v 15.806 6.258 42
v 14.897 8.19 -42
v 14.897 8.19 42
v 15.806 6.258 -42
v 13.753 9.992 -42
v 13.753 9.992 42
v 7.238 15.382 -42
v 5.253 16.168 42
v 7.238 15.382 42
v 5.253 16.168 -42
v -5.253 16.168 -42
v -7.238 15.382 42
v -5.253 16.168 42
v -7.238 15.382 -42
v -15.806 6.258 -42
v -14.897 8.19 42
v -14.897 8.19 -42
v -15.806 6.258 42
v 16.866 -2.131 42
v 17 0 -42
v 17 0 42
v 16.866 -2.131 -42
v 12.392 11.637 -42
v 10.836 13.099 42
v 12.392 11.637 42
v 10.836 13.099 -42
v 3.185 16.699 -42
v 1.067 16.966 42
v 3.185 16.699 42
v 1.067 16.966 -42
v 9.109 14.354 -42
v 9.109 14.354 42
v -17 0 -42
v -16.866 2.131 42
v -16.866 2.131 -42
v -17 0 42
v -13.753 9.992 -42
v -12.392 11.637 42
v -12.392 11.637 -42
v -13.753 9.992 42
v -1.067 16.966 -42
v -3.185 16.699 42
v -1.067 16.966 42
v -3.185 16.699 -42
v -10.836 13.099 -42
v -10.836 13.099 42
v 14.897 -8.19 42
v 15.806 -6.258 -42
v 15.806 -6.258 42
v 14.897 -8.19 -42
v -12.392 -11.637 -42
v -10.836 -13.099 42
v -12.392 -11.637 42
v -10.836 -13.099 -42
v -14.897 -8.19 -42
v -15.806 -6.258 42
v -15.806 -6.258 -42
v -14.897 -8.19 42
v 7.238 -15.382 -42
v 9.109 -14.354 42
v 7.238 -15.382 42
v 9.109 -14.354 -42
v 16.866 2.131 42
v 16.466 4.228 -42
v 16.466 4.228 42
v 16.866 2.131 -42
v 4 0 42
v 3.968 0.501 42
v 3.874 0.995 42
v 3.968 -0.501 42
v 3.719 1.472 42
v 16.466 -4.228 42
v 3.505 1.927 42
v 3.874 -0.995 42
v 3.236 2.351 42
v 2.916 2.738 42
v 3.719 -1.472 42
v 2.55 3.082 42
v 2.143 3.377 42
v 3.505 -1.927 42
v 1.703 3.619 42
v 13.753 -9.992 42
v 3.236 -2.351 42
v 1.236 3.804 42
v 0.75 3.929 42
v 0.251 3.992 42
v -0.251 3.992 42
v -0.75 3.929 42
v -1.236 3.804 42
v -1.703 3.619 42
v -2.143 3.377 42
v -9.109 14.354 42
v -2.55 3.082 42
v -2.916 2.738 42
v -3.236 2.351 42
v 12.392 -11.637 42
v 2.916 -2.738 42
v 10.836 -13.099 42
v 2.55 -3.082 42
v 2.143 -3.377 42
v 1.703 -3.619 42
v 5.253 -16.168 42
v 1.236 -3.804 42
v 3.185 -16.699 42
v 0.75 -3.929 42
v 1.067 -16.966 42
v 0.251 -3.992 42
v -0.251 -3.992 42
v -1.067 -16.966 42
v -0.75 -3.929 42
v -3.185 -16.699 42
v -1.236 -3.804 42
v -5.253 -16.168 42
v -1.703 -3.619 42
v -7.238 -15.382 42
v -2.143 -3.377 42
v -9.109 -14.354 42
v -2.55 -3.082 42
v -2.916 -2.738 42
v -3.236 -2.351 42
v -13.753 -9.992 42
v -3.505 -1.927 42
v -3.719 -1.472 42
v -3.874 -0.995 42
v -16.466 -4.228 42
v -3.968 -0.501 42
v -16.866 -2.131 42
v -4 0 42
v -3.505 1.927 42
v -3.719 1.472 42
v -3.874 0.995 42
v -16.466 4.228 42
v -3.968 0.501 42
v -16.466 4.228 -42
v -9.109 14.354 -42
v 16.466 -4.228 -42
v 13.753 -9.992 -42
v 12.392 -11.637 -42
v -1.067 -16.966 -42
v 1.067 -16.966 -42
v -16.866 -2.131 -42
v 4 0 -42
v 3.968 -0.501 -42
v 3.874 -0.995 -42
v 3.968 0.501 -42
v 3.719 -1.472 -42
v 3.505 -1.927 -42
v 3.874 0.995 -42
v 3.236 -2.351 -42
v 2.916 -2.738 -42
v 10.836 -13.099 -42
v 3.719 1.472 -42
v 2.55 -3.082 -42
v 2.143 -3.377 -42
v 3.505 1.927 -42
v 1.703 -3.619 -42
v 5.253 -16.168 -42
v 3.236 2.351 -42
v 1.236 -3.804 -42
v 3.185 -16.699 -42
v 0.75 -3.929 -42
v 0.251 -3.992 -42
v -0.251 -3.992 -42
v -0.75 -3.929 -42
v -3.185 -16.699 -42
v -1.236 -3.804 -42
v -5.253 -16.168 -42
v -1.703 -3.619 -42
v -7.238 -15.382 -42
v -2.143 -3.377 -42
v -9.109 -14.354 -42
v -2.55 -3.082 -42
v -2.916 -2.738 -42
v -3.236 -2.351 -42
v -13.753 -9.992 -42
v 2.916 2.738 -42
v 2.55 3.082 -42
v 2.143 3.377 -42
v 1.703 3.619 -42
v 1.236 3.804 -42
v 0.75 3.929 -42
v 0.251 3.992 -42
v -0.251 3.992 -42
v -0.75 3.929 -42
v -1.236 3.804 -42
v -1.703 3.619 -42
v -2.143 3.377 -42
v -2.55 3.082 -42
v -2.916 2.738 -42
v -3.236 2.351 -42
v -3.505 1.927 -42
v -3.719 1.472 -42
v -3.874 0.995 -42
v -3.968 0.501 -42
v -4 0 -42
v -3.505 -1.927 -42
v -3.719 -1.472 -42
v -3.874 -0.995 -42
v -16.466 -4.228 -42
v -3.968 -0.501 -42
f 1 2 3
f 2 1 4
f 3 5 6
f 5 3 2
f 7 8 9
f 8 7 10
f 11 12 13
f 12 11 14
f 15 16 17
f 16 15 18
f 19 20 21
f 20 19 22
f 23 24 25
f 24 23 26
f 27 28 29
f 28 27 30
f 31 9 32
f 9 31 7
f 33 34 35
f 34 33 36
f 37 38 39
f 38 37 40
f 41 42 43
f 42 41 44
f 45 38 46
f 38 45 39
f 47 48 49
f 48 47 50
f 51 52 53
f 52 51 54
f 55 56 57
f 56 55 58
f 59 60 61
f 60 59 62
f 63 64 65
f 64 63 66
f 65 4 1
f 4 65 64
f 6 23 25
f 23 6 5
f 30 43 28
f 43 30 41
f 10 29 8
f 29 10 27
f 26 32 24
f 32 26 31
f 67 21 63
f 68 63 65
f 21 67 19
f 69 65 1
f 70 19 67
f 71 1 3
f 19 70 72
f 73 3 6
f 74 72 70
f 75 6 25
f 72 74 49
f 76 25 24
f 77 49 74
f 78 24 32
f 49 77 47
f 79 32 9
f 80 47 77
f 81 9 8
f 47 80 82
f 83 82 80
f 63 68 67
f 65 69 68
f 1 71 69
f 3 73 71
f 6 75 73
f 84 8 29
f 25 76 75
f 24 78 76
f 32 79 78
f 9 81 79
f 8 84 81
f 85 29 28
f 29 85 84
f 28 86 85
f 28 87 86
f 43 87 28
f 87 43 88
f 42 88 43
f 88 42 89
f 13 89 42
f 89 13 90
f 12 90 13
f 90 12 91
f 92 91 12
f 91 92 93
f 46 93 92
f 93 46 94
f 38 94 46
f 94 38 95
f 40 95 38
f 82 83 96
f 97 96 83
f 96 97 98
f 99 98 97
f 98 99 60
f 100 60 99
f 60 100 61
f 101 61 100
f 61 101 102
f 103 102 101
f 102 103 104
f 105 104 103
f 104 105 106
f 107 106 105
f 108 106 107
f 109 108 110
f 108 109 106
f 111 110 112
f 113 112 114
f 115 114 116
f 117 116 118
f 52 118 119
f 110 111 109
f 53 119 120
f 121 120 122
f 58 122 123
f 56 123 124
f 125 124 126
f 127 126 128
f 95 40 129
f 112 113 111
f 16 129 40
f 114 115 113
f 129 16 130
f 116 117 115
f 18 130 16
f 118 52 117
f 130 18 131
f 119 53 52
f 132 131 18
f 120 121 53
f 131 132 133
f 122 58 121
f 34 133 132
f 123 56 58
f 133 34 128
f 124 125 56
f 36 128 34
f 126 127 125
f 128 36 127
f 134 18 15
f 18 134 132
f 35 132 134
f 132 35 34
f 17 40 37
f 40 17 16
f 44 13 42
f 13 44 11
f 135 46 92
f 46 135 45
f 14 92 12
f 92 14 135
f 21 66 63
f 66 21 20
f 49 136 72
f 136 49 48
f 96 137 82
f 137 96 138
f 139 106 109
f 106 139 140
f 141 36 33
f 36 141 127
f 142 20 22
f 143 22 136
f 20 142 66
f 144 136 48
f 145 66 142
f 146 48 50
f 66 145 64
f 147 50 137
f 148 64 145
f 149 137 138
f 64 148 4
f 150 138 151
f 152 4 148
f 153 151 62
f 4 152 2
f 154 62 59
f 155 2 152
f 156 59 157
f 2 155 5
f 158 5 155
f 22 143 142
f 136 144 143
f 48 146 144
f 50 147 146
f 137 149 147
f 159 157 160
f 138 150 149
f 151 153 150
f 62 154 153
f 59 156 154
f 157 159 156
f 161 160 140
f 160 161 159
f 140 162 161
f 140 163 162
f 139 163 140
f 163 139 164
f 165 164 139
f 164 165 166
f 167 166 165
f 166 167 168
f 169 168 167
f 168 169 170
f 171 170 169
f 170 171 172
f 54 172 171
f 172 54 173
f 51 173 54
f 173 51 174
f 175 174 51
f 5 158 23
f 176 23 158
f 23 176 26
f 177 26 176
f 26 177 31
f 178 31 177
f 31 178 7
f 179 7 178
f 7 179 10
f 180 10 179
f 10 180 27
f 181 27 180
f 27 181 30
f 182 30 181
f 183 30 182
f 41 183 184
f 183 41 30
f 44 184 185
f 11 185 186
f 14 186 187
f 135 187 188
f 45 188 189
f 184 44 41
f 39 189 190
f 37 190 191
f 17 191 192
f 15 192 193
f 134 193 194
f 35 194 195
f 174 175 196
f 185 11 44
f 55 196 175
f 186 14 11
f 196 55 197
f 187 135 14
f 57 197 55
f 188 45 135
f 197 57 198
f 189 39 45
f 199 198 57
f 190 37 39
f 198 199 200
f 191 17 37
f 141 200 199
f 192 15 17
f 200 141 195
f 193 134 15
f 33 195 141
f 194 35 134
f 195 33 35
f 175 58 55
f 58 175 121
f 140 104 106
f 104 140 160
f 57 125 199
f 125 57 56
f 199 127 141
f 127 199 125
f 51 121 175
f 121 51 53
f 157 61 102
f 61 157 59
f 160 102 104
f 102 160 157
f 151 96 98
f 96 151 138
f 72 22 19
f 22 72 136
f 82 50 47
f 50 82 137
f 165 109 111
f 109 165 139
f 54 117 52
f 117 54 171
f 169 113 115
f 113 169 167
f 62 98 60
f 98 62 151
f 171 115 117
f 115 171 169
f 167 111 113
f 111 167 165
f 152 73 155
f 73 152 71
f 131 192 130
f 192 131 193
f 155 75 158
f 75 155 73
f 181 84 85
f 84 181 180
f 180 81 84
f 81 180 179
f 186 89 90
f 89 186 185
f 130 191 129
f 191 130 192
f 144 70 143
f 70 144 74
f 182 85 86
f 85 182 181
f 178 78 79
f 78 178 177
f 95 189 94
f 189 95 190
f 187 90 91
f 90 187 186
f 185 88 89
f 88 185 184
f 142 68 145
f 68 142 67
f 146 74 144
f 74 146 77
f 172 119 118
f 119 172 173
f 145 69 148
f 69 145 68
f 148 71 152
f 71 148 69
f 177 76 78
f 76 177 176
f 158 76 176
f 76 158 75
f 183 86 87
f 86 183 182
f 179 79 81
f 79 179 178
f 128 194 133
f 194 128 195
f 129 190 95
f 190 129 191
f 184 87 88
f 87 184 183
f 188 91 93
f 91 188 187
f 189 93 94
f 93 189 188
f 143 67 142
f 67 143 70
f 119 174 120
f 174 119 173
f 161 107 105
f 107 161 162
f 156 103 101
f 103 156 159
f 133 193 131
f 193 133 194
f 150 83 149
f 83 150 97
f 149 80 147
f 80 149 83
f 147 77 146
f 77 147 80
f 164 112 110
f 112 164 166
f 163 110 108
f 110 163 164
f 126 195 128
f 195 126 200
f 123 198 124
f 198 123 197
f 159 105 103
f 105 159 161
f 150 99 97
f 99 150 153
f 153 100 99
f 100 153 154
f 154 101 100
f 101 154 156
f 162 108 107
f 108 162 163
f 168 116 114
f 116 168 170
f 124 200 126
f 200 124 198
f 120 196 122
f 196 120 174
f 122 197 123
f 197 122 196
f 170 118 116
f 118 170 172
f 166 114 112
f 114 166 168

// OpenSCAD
$fn = 50;


difference() {
	union() {
		translate(v = [0, 0, -42.0000000000]) {
			cylinder(h = 84, r = 17.0000000000);
		}
	}
	union() {
		translate(v = [0, 0, -100.0000000000]) {
			cylinder(h = 200, r = 4);
		}
	}
}
